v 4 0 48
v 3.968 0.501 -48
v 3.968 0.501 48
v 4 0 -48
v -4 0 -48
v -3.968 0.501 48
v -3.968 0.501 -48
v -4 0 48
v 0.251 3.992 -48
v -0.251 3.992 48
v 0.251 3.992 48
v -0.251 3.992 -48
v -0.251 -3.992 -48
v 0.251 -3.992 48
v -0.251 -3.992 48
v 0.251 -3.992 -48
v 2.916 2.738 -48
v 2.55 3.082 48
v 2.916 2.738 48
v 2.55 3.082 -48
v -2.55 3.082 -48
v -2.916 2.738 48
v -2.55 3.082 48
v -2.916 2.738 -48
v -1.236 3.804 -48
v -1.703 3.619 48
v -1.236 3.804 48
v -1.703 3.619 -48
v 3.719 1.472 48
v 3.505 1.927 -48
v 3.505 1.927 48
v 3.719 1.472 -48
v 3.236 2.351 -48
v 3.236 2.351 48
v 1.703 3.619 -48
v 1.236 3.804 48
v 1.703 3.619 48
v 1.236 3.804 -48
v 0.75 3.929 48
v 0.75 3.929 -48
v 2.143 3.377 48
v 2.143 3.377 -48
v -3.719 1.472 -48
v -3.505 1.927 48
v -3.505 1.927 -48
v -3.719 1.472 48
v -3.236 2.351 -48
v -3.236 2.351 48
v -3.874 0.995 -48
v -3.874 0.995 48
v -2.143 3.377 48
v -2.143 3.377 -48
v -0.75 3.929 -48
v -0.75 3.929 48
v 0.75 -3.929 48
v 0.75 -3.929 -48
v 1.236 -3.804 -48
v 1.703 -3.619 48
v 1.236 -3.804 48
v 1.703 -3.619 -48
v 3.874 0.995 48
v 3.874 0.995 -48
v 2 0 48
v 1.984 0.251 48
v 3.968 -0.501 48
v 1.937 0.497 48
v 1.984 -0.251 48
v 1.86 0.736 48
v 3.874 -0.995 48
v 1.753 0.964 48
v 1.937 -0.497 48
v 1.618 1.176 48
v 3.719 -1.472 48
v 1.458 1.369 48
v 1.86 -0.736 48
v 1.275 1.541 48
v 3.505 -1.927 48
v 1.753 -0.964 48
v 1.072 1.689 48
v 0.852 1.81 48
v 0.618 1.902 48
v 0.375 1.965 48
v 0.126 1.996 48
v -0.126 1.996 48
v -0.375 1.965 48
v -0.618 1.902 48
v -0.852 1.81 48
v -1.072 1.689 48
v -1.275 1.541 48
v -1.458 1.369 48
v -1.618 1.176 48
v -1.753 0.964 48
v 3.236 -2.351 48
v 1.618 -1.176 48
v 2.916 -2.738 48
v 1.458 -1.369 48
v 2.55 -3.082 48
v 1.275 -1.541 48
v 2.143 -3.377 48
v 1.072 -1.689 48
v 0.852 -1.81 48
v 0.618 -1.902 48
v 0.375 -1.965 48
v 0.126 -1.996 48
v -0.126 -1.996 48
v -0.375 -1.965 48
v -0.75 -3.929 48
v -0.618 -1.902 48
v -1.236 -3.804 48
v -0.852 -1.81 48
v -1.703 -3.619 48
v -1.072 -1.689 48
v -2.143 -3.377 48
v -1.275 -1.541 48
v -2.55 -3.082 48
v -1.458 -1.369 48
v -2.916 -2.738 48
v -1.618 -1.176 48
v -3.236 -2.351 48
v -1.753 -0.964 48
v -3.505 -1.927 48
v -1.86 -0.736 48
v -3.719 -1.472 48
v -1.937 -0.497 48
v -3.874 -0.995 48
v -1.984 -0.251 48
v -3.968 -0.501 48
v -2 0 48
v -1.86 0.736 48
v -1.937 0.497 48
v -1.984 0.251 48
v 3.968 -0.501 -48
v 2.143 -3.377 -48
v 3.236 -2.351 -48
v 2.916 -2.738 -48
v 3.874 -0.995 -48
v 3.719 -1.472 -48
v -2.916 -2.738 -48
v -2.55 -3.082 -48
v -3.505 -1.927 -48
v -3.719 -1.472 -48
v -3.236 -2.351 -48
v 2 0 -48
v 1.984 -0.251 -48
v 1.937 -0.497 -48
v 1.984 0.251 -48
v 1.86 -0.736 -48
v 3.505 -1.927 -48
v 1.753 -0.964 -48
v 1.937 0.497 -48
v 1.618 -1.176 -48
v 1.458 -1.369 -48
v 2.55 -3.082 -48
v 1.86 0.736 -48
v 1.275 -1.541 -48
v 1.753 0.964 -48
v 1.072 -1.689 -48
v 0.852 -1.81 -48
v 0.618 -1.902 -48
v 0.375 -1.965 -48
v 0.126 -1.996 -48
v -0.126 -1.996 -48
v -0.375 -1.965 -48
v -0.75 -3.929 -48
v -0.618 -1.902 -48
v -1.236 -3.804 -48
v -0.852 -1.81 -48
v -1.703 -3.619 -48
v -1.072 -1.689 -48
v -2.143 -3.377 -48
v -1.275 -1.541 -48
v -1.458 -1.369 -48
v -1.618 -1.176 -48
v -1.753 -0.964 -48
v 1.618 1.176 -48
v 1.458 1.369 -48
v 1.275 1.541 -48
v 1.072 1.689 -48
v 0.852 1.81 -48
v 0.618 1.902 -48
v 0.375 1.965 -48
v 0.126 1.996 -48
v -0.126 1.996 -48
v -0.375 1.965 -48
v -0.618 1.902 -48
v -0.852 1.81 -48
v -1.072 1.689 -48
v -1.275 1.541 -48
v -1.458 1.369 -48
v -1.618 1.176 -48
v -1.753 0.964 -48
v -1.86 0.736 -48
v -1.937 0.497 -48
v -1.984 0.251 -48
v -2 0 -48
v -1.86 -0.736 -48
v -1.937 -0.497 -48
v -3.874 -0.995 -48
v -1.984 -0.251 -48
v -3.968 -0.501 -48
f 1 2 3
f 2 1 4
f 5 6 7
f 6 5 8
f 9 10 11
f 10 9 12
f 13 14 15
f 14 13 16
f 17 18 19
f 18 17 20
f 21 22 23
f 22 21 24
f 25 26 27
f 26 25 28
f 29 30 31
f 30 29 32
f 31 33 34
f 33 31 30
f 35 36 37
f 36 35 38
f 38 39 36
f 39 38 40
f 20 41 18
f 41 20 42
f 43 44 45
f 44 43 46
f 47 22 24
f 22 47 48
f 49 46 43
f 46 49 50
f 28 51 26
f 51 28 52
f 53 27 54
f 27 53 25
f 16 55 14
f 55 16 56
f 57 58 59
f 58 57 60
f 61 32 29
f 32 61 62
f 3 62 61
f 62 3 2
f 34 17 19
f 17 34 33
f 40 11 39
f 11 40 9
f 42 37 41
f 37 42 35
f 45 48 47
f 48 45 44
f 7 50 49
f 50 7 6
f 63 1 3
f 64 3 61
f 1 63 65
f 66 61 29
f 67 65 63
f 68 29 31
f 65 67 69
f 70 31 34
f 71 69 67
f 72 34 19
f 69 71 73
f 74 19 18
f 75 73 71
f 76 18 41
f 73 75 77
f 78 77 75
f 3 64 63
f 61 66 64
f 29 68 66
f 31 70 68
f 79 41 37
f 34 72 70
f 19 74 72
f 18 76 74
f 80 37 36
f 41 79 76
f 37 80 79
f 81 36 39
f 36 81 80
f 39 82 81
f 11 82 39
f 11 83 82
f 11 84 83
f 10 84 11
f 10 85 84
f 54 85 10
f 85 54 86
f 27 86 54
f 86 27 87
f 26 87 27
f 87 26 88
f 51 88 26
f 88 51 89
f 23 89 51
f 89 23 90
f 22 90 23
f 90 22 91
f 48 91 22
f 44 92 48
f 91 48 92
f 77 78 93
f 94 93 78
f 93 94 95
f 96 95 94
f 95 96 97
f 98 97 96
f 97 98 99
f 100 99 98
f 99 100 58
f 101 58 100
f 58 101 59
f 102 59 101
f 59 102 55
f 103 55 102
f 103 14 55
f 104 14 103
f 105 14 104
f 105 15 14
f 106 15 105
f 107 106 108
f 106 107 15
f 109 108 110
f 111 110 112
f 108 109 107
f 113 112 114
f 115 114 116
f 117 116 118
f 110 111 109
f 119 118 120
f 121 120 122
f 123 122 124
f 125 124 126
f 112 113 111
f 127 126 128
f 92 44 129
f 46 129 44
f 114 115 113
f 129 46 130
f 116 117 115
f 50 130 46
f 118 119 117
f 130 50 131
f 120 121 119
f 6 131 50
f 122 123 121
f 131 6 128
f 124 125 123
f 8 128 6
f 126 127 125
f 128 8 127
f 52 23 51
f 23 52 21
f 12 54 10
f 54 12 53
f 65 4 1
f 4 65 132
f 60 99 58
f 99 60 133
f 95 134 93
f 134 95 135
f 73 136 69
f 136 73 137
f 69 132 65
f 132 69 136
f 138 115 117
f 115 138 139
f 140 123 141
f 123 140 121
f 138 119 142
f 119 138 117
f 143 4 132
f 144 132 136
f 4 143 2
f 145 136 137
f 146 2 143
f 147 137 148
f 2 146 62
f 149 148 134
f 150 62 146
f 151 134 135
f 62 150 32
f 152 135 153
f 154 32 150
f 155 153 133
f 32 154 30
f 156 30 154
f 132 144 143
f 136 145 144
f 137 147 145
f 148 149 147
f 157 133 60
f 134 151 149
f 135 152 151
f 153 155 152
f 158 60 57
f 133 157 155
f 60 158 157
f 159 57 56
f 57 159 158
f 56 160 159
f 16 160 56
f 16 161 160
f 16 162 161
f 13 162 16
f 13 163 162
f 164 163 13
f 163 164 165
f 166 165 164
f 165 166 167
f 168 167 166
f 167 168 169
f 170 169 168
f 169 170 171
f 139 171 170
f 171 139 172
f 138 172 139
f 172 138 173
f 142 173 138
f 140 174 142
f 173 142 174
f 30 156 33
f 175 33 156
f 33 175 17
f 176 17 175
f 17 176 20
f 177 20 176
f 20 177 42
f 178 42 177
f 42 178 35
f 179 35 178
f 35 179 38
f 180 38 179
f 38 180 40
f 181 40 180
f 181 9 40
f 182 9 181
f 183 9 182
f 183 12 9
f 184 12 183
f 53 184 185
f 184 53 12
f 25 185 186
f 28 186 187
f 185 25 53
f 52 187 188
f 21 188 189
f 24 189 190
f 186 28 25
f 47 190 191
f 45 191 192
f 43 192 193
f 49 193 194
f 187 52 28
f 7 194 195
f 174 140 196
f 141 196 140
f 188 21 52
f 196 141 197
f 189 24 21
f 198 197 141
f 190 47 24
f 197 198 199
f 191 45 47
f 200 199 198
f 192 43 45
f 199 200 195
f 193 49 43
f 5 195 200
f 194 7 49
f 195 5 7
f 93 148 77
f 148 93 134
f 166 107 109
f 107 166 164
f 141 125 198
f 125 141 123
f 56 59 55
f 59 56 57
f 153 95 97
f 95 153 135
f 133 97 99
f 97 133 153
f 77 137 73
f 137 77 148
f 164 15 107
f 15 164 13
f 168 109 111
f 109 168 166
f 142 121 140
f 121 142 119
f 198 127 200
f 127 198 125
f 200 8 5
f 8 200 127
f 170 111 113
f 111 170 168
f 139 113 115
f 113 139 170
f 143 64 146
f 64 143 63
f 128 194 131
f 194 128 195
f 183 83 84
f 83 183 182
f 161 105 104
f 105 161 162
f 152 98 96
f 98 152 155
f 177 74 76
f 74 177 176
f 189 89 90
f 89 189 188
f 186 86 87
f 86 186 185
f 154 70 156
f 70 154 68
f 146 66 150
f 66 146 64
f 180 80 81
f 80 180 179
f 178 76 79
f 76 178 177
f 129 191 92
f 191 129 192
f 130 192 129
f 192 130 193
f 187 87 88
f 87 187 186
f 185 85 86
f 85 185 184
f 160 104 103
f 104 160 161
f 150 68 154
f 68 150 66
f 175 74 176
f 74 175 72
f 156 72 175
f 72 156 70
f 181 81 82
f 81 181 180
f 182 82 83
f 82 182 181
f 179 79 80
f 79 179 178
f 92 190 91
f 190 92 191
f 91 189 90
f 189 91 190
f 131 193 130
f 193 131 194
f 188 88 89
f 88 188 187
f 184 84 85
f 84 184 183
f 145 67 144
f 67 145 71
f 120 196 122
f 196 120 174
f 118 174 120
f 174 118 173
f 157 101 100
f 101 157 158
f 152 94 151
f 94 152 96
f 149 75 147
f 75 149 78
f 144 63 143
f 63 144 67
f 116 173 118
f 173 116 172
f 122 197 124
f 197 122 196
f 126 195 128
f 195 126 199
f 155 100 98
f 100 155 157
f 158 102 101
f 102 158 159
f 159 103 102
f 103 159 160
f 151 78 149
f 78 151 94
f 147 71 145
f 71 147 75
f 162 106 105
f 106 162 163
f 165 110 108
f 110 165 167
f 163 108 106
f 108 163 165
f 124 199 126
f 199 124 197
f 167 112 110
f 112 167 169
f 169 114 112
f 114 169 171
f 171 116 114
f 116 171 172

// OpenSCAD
$fn = 50;


difference() {
	union() {
		translate(v = [0, 0, -48.0000000000]) {
			cylinder(h = 96, r = 4.0000000000);
		}
	}
	union() {
		translate(v = [0, 0, -100.0000000000]) {
			cylinder(h = 200, r = 2);
		}
	}
}
